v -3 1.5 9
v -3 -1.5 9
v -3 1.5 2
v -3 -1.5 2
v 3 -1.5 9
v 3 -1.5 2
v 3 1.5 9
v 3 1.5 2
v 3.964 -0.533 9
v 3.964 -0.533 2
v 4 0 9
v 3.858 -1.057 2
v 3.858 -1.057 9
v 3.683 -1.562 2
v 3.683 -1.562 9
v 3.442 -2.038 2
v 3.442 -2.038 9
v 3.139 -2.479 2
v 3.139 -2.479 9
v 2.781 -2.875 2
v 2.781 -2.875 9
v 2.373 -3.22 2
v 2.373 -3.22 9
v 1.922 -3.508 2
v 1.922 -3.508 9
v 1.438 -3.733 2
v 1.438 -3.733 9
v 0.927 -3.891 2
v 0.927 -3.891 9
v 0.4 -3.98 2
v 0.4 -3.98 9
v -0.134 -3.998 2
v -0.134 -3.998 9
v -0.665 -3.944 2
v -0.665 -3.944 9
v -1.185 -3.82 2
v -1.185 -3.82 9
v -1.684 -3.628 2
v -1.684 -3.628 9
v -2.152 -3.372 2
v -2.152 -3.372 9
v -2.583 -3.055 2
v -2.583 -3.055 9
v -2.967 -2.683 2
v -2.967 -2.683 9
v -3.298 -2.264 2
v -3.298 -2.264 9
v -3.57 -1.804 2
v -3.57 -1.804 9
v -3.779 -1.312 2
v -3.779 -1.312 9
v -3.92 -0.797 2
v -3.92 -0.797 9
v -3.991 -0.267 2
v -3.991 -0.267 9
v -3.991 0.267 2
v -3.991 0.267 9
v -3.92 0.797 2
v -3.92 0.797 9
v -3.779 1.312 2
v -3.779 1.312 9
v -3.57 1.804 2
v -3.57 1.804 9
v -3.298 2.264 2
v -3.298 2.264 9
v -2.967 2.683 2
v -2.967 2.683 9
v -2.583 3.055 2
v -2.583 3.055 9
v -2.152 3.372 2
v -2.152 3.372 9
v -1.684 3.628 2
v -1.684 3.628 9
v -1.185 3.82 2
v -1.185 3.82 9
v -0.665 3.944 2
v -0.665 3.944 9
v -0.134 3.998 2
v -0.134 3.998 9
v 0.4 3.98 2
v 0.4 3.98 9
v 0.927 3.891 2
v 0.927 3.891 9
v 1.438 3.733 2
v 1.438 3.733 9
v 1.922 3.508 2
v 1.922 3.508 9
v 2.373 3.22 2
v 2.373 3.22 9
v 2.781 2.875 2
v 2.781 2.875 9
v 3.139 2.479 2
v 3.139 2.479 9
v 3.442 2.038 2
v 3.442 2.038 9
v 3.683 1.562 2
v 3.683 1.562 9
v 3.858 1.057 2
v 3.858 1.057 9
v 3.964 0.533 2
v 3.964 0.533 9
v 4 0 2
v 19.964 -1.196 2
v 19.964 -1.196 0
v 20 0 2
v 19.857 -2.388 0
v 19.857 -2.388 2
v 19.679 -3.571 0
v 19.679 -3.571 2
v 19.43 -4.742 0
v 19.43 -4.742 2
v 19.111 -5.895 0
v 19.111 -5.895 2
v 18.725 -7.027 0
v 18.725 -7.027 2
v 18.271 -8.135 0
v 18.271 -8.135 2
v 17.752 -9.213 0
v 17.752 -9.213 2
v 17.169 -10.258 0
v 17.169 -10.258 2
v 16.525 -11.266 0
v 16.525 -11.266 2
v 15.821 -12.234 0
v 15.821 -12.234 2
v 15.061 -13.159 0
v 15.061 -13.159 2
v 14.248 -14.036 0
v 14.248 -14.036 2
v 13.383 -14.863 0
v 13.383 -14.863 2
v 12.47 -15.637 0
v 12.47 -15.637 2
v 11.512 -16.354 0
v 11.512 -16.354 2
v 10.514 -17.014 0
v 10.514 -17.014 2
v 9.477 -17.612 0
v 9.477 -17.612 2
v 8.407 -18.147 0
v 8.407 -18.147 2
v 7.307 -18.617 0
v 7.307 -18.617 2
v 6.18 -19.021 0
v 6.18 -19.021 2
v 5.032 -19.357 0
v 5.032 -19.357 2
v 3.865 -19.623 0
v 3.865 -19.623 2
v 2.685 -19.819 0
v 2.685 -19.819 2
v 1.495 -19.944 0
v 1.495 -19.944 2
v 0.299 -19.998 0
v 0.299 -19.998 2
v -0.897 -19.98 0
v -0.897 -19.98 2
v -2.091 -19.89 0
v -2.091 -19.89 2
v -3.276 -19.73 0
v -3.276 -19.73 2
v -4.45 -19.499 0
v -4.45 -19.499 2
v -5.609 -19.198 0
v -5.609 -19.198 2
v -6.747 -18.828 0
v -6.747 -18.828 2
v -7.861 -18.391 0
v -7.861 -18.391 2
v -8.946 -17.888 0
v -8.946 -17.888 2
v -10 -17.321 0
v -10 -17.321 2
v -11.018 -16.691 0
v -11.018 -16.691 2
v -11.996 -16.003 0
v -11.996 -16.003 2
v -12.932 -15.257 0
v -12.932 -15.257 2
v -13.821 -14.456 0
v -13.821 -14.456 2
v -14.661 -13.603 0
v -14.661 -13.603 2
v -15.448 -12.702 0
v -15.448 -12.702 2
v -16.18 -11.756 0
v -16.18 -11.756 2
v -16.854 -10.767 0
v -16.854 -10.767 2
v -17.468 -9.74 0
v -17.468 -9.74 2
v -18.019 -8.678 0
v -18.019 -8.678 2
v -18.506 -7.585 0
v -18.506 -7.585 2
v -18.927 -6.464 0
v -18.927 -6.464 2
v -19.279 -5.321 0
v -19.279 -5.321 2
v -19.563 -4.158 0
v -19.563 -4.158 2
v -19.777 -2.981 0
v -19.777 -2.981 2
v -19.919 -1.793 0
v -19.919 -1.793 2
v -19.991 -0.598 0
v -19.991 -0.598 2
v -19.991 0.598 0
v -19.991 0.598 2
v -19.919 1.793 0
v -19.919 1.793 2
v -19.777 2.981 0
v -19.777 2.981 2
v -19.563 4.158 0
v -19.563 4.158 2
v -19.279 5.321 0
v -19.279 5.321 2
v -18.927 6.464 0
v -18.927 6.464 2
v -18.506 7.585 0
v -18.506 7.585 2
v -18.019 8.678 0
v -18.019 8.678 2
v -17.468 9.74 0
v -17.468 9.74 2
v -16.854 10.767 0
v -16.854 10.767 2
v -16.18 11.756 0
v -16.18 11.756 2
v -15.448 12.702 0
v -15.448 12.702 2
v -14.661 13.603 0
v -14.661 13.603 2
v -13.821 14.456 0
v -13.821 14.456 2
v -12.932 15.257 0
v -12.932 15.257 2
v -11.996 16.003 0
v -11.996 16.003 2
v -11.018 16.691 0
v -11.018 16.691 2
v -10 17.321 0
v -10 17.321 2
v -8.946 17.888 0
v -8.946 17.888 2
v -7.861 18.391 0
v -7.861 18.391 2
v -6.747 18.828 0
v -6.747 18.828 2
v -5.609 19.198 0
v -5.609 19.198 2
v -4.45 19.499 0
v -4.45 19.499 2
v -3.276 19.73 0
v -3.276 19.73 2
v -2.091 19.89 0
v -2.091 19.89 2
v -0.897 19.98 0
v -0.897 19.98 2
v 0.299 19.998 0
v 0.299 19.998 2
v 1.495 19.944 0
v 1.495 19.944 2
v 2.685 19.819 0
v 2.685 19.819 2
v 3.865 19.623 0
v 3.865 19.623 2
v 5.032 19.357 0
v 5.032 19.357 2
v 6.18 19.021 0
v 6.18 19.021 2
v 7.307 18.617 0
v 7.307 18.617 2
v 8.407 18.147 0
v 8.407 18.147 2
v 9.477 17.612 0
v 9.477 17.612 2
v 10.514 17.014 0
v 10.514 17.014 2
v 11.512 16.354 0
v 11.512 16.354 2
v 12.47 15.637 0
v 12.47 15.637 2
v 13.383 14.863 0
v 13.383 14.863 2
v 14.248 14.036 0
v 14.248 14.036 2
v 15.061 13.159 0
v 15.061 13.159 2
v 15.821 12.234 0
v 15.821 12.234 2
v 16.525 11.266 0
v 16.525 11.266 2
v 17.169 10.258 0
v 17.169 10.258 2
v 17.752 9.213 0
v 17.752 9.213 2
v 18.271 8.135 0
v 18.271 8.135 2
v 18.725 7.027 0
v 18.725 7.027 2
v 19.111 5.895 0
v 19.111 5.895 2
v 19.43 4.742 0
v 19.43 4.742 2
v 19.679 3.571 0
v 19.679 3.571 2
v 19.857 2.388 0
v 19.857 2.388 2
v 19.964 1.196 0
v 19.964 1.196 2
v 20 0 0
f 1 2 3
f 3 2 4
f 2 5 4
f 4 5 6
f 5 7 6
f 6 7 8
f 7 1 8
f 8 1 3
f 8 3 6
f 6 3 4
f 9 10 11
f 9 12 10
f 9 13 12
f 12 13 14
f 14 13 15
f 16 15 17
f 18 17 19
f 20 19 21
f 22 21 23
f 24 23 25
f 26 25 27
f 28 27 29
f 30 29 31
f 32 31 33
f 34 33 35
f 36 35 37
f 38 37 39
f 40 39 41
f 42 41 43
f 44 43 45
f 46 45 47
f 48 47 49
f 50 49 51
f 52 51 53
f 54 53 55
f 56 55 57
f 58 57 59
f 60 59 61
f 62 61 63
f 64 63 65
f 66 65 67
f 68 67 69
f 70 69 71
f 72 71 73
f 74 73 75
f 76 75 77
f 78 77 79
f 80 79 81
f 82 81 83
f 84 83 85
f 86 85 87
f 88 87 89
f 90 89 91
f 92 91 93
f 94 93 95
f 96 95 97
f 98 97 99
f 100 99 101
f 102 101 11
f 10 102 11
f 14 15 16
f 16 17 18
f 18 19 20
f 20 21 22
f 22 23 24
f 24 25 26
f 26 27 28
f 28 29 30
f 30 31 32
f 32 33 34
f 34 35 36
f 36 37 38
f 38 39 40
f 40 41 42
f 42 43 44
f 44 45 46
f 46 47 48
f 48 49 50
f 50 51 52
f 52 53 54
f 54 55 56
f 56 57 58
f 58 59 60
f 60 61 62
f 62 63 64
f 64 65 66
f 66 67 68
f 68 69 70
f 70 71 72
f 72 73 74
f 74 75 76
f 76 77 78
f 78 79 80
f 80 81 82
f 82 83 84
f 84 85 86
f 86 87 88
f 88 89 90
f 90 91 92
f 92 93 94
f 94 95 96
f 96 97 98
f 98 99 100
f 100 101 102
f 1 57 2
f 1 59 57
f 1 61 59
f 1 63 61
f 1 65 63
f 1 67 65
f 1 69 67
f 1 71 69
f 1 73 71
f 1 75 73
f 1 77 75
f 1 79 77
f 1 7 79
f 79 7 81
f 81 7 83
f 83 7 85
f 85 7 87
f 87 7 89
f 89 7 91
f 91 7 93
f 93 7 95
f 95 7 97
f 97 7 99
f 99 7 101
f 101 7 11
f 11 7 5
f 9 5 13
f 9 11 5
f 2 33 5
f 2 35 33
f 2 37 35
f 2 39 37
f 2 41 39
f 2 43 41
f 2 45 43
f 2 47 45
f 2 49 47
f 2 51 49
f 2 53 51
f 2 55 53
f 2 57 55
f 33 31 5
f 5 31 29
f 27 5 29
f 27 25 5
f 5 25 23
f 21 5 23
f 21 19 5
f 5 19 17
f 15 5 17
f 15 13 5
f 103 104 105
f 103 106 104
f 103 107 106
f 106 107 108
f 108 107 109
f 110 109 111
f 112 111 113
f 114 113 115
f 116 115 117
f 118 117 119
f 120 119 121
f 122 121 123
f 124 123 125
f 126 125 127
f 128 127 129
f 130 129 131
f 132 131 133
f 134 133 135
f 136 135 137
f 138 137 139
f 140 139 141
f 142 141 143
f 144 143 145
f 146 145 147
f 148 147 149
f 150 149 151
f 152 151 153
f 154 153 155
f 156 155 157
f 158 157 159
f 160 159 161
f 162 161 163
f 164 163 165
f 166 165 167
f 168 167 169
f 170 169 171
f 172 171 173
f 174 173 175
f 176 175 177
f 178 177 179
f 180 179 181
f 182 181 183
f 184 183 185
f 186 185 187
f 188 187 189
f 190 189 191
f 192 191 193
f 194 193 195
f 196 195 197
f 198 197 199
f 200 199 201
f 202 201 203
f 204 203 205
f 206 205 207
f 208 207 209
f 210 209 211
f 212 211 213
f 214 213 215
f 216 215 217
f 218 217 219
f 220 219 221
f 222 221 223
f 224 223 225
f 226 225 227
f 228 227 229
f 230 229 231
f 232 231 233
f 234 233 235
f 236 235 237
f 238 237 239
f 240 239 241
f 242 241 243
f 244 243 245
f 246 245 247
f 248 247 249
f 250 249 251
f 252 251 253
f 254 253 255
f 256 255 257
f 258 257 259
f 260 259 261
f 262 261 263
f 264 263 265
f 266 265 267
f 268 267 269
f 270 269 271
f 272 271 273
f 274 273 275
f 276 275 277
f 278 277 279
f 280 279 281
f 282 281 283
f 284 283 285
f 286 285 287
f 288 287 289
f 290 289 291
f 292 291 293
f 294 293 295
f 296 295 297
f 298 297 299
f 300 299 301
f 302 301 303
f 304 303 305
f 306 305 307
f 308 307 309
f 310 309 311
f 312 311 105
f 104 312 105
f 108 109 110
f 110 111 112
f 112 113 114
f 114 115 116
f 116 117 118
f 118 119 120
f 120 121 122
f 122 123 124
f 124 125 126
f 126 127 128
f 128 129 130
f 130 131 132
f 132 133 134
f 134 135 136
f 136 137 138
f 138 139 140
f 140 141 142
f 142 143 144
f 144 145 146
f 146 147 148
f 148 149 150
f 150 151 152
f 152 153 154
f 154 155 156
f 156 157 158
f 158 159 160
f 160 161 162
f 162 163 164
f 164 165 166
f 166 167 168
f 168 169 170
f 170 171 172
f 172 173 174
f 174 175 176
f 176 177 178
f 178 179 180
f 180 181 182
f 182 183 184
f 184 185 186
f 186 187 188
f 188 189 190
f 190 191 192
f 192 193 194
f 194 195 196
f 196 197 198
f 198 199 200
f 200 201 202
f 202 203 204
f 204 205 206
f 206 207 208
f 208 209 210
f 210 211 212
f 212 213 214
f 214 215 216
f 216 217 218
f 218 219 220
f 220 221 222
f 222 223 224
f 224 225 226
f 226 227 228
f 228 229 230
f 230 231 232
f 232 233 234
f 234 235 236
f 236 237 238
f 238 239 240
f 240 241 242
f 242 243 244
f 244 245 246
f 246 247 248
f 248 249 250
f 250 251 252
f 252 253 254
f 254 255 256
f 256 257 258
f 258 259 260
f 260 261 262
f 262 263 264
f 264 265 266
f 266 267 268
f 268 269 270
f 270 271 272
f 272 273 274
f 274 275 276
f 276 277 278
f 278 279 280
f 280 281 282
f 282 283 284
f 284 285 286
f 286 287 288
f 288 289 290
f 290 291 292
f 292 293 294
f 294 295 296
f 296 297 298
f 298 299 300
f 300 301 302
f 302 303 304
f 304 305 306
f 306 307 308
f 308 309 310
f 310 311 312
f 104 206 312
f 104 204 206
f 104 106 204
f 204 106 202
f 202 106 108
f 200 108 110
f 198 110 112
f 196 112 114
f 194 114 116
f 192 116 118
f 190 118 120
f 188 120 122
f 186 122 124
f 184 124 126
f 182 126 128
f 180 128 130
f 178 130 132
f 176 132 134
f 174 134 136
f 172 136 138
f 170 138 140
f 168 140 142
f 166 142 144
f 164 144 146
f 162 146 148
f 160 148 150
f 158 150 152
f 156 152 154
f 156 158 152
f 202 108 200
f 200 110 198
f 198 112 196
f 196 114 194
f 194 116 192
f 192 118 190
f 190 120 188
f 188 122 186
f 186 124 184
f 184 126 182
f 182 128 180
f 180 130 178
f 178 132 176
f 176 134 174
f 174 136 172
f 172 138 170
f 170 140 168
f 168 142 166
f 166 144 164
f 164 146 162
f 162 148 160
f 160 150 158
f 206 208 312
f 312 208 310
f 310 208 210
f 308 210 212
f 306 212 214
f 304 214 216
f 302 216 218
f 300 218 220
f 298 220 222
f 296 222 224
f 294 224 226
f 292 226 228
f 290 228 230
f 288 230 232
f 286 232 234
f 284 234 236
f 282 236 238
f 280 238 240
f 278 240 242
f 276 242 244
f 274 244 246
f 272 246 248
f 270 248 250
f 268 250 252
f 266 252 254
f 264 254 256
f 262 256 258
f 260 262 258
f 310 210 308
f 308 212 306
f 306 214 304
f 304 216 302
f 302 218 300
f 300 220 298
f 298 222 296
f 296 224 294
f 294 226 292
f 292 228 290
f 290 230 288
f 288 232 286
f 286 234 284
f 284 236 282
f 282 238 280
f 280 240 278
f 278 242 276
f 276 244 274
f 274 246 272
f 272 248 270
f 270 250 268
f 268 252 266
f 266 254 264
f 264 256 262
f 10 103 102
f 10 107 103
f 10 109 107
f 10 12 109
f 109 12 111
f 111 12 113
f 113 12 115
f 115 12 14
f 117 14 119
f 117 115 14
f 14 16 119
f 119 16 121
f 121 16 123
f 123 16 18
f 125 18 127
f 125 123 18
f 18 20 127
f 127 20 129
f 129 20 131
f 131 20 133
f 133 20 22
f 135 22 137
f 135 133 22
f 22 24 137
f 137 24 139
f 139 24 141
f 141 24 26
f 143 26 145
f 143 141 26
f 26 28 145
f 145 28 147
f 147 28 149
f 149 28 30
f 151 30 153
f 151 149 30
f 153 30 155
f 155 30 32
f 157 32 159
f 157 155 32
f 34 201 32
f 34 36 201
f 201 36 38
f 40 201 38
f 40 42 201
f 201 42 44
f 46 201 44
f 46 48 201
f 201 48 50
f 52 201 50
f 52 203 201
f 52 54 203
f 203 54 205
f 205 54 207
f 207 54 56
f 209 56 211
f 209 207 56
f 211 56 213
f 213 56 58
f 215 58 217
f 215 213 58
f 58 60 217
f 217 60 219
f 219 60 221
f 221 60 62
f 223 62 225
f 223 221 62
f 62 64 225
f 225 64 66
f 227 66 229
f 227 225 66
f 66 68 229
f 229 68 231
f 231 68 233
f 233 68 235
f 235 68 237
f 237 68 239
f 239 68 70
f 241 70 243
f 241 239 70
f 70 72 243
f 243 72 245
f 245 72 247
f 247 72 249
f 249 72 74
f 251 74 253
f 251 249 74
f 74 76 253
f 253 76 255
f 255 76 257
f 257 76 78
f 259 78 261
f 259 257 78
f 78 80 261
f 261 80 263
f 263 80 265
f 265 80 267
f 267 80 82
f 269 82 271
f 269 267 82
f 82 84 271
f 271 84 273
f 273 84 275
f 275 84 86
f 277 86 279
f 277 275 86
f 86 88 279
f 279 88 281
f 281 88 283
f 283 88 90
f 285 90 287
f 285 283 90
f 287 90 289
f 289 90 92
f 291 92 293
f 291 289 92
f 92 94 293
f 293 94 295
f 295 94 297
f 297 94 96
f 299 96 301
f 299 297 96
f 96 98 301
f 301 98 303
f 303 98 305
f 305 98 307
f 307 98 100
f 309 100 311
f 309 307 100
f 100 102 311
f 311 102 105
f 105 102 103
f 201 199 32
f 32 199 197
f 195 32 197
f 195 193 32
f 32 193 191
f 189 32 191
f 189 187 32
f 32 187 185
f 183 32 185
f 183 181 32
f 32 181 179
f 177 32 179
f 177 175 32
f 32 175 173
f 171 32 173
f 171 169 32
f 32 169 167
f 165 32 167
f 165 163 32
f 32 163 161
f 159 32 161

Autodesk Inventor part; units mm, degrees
ref_plane "YZ Plane" through (0, 0, 0) normal (1, 0, 0) x (0, 1, 0)
ref_plane "XZ Plane" through (0, 0, 0) normal (0, 1, 0) x (-1, 0, 0)
ref_plane "XY Plane" through (0, 0, 0) normal (0, 0, 1) x (1, 0, 0)
sketch "Sketch1" plane through (0, 0, 0) normal (0, 0, 1) x (1, 0, 0)
  circle A0 centre (0, 0) radius 20
  dimension "d0" = 40
extrude "Extrusion1" add sketch "Sketch1" along normal blind 2
sketch "Sketch2" plane through (0, 0, 2) normal (0, 0, 1) x (1, 0, 0)
  circle A0 centre (0, 0) radius 4
  dimension "d3" = 8
extrude "Extrusion2" add sketch "Sketch2" along normal blind 7
sketch "Sketch3" plane through (0, 0, 9) normal (0, 0, 1) x (1, 0, 0)
  line L0 (-3, 1.5) -> (3, 1.5)
  line L1 (3, 1.5) -> (3, -1.5)
  line L2 (3, -1.5) -> (-3, -1.5)
  line L3 (-3, -1.5) -> (-3, 1.5)
  point P0 (0, 0)
  dimension "d6" = 6
  dimension "d7" = 3
  dimension "d8" = 1.5
  dimension "d9" = 3
  dimension "d10" = 3
extrude "Extrusion3" cut sketch "Sketch3" against normal blind 7
properties part number "baser"
